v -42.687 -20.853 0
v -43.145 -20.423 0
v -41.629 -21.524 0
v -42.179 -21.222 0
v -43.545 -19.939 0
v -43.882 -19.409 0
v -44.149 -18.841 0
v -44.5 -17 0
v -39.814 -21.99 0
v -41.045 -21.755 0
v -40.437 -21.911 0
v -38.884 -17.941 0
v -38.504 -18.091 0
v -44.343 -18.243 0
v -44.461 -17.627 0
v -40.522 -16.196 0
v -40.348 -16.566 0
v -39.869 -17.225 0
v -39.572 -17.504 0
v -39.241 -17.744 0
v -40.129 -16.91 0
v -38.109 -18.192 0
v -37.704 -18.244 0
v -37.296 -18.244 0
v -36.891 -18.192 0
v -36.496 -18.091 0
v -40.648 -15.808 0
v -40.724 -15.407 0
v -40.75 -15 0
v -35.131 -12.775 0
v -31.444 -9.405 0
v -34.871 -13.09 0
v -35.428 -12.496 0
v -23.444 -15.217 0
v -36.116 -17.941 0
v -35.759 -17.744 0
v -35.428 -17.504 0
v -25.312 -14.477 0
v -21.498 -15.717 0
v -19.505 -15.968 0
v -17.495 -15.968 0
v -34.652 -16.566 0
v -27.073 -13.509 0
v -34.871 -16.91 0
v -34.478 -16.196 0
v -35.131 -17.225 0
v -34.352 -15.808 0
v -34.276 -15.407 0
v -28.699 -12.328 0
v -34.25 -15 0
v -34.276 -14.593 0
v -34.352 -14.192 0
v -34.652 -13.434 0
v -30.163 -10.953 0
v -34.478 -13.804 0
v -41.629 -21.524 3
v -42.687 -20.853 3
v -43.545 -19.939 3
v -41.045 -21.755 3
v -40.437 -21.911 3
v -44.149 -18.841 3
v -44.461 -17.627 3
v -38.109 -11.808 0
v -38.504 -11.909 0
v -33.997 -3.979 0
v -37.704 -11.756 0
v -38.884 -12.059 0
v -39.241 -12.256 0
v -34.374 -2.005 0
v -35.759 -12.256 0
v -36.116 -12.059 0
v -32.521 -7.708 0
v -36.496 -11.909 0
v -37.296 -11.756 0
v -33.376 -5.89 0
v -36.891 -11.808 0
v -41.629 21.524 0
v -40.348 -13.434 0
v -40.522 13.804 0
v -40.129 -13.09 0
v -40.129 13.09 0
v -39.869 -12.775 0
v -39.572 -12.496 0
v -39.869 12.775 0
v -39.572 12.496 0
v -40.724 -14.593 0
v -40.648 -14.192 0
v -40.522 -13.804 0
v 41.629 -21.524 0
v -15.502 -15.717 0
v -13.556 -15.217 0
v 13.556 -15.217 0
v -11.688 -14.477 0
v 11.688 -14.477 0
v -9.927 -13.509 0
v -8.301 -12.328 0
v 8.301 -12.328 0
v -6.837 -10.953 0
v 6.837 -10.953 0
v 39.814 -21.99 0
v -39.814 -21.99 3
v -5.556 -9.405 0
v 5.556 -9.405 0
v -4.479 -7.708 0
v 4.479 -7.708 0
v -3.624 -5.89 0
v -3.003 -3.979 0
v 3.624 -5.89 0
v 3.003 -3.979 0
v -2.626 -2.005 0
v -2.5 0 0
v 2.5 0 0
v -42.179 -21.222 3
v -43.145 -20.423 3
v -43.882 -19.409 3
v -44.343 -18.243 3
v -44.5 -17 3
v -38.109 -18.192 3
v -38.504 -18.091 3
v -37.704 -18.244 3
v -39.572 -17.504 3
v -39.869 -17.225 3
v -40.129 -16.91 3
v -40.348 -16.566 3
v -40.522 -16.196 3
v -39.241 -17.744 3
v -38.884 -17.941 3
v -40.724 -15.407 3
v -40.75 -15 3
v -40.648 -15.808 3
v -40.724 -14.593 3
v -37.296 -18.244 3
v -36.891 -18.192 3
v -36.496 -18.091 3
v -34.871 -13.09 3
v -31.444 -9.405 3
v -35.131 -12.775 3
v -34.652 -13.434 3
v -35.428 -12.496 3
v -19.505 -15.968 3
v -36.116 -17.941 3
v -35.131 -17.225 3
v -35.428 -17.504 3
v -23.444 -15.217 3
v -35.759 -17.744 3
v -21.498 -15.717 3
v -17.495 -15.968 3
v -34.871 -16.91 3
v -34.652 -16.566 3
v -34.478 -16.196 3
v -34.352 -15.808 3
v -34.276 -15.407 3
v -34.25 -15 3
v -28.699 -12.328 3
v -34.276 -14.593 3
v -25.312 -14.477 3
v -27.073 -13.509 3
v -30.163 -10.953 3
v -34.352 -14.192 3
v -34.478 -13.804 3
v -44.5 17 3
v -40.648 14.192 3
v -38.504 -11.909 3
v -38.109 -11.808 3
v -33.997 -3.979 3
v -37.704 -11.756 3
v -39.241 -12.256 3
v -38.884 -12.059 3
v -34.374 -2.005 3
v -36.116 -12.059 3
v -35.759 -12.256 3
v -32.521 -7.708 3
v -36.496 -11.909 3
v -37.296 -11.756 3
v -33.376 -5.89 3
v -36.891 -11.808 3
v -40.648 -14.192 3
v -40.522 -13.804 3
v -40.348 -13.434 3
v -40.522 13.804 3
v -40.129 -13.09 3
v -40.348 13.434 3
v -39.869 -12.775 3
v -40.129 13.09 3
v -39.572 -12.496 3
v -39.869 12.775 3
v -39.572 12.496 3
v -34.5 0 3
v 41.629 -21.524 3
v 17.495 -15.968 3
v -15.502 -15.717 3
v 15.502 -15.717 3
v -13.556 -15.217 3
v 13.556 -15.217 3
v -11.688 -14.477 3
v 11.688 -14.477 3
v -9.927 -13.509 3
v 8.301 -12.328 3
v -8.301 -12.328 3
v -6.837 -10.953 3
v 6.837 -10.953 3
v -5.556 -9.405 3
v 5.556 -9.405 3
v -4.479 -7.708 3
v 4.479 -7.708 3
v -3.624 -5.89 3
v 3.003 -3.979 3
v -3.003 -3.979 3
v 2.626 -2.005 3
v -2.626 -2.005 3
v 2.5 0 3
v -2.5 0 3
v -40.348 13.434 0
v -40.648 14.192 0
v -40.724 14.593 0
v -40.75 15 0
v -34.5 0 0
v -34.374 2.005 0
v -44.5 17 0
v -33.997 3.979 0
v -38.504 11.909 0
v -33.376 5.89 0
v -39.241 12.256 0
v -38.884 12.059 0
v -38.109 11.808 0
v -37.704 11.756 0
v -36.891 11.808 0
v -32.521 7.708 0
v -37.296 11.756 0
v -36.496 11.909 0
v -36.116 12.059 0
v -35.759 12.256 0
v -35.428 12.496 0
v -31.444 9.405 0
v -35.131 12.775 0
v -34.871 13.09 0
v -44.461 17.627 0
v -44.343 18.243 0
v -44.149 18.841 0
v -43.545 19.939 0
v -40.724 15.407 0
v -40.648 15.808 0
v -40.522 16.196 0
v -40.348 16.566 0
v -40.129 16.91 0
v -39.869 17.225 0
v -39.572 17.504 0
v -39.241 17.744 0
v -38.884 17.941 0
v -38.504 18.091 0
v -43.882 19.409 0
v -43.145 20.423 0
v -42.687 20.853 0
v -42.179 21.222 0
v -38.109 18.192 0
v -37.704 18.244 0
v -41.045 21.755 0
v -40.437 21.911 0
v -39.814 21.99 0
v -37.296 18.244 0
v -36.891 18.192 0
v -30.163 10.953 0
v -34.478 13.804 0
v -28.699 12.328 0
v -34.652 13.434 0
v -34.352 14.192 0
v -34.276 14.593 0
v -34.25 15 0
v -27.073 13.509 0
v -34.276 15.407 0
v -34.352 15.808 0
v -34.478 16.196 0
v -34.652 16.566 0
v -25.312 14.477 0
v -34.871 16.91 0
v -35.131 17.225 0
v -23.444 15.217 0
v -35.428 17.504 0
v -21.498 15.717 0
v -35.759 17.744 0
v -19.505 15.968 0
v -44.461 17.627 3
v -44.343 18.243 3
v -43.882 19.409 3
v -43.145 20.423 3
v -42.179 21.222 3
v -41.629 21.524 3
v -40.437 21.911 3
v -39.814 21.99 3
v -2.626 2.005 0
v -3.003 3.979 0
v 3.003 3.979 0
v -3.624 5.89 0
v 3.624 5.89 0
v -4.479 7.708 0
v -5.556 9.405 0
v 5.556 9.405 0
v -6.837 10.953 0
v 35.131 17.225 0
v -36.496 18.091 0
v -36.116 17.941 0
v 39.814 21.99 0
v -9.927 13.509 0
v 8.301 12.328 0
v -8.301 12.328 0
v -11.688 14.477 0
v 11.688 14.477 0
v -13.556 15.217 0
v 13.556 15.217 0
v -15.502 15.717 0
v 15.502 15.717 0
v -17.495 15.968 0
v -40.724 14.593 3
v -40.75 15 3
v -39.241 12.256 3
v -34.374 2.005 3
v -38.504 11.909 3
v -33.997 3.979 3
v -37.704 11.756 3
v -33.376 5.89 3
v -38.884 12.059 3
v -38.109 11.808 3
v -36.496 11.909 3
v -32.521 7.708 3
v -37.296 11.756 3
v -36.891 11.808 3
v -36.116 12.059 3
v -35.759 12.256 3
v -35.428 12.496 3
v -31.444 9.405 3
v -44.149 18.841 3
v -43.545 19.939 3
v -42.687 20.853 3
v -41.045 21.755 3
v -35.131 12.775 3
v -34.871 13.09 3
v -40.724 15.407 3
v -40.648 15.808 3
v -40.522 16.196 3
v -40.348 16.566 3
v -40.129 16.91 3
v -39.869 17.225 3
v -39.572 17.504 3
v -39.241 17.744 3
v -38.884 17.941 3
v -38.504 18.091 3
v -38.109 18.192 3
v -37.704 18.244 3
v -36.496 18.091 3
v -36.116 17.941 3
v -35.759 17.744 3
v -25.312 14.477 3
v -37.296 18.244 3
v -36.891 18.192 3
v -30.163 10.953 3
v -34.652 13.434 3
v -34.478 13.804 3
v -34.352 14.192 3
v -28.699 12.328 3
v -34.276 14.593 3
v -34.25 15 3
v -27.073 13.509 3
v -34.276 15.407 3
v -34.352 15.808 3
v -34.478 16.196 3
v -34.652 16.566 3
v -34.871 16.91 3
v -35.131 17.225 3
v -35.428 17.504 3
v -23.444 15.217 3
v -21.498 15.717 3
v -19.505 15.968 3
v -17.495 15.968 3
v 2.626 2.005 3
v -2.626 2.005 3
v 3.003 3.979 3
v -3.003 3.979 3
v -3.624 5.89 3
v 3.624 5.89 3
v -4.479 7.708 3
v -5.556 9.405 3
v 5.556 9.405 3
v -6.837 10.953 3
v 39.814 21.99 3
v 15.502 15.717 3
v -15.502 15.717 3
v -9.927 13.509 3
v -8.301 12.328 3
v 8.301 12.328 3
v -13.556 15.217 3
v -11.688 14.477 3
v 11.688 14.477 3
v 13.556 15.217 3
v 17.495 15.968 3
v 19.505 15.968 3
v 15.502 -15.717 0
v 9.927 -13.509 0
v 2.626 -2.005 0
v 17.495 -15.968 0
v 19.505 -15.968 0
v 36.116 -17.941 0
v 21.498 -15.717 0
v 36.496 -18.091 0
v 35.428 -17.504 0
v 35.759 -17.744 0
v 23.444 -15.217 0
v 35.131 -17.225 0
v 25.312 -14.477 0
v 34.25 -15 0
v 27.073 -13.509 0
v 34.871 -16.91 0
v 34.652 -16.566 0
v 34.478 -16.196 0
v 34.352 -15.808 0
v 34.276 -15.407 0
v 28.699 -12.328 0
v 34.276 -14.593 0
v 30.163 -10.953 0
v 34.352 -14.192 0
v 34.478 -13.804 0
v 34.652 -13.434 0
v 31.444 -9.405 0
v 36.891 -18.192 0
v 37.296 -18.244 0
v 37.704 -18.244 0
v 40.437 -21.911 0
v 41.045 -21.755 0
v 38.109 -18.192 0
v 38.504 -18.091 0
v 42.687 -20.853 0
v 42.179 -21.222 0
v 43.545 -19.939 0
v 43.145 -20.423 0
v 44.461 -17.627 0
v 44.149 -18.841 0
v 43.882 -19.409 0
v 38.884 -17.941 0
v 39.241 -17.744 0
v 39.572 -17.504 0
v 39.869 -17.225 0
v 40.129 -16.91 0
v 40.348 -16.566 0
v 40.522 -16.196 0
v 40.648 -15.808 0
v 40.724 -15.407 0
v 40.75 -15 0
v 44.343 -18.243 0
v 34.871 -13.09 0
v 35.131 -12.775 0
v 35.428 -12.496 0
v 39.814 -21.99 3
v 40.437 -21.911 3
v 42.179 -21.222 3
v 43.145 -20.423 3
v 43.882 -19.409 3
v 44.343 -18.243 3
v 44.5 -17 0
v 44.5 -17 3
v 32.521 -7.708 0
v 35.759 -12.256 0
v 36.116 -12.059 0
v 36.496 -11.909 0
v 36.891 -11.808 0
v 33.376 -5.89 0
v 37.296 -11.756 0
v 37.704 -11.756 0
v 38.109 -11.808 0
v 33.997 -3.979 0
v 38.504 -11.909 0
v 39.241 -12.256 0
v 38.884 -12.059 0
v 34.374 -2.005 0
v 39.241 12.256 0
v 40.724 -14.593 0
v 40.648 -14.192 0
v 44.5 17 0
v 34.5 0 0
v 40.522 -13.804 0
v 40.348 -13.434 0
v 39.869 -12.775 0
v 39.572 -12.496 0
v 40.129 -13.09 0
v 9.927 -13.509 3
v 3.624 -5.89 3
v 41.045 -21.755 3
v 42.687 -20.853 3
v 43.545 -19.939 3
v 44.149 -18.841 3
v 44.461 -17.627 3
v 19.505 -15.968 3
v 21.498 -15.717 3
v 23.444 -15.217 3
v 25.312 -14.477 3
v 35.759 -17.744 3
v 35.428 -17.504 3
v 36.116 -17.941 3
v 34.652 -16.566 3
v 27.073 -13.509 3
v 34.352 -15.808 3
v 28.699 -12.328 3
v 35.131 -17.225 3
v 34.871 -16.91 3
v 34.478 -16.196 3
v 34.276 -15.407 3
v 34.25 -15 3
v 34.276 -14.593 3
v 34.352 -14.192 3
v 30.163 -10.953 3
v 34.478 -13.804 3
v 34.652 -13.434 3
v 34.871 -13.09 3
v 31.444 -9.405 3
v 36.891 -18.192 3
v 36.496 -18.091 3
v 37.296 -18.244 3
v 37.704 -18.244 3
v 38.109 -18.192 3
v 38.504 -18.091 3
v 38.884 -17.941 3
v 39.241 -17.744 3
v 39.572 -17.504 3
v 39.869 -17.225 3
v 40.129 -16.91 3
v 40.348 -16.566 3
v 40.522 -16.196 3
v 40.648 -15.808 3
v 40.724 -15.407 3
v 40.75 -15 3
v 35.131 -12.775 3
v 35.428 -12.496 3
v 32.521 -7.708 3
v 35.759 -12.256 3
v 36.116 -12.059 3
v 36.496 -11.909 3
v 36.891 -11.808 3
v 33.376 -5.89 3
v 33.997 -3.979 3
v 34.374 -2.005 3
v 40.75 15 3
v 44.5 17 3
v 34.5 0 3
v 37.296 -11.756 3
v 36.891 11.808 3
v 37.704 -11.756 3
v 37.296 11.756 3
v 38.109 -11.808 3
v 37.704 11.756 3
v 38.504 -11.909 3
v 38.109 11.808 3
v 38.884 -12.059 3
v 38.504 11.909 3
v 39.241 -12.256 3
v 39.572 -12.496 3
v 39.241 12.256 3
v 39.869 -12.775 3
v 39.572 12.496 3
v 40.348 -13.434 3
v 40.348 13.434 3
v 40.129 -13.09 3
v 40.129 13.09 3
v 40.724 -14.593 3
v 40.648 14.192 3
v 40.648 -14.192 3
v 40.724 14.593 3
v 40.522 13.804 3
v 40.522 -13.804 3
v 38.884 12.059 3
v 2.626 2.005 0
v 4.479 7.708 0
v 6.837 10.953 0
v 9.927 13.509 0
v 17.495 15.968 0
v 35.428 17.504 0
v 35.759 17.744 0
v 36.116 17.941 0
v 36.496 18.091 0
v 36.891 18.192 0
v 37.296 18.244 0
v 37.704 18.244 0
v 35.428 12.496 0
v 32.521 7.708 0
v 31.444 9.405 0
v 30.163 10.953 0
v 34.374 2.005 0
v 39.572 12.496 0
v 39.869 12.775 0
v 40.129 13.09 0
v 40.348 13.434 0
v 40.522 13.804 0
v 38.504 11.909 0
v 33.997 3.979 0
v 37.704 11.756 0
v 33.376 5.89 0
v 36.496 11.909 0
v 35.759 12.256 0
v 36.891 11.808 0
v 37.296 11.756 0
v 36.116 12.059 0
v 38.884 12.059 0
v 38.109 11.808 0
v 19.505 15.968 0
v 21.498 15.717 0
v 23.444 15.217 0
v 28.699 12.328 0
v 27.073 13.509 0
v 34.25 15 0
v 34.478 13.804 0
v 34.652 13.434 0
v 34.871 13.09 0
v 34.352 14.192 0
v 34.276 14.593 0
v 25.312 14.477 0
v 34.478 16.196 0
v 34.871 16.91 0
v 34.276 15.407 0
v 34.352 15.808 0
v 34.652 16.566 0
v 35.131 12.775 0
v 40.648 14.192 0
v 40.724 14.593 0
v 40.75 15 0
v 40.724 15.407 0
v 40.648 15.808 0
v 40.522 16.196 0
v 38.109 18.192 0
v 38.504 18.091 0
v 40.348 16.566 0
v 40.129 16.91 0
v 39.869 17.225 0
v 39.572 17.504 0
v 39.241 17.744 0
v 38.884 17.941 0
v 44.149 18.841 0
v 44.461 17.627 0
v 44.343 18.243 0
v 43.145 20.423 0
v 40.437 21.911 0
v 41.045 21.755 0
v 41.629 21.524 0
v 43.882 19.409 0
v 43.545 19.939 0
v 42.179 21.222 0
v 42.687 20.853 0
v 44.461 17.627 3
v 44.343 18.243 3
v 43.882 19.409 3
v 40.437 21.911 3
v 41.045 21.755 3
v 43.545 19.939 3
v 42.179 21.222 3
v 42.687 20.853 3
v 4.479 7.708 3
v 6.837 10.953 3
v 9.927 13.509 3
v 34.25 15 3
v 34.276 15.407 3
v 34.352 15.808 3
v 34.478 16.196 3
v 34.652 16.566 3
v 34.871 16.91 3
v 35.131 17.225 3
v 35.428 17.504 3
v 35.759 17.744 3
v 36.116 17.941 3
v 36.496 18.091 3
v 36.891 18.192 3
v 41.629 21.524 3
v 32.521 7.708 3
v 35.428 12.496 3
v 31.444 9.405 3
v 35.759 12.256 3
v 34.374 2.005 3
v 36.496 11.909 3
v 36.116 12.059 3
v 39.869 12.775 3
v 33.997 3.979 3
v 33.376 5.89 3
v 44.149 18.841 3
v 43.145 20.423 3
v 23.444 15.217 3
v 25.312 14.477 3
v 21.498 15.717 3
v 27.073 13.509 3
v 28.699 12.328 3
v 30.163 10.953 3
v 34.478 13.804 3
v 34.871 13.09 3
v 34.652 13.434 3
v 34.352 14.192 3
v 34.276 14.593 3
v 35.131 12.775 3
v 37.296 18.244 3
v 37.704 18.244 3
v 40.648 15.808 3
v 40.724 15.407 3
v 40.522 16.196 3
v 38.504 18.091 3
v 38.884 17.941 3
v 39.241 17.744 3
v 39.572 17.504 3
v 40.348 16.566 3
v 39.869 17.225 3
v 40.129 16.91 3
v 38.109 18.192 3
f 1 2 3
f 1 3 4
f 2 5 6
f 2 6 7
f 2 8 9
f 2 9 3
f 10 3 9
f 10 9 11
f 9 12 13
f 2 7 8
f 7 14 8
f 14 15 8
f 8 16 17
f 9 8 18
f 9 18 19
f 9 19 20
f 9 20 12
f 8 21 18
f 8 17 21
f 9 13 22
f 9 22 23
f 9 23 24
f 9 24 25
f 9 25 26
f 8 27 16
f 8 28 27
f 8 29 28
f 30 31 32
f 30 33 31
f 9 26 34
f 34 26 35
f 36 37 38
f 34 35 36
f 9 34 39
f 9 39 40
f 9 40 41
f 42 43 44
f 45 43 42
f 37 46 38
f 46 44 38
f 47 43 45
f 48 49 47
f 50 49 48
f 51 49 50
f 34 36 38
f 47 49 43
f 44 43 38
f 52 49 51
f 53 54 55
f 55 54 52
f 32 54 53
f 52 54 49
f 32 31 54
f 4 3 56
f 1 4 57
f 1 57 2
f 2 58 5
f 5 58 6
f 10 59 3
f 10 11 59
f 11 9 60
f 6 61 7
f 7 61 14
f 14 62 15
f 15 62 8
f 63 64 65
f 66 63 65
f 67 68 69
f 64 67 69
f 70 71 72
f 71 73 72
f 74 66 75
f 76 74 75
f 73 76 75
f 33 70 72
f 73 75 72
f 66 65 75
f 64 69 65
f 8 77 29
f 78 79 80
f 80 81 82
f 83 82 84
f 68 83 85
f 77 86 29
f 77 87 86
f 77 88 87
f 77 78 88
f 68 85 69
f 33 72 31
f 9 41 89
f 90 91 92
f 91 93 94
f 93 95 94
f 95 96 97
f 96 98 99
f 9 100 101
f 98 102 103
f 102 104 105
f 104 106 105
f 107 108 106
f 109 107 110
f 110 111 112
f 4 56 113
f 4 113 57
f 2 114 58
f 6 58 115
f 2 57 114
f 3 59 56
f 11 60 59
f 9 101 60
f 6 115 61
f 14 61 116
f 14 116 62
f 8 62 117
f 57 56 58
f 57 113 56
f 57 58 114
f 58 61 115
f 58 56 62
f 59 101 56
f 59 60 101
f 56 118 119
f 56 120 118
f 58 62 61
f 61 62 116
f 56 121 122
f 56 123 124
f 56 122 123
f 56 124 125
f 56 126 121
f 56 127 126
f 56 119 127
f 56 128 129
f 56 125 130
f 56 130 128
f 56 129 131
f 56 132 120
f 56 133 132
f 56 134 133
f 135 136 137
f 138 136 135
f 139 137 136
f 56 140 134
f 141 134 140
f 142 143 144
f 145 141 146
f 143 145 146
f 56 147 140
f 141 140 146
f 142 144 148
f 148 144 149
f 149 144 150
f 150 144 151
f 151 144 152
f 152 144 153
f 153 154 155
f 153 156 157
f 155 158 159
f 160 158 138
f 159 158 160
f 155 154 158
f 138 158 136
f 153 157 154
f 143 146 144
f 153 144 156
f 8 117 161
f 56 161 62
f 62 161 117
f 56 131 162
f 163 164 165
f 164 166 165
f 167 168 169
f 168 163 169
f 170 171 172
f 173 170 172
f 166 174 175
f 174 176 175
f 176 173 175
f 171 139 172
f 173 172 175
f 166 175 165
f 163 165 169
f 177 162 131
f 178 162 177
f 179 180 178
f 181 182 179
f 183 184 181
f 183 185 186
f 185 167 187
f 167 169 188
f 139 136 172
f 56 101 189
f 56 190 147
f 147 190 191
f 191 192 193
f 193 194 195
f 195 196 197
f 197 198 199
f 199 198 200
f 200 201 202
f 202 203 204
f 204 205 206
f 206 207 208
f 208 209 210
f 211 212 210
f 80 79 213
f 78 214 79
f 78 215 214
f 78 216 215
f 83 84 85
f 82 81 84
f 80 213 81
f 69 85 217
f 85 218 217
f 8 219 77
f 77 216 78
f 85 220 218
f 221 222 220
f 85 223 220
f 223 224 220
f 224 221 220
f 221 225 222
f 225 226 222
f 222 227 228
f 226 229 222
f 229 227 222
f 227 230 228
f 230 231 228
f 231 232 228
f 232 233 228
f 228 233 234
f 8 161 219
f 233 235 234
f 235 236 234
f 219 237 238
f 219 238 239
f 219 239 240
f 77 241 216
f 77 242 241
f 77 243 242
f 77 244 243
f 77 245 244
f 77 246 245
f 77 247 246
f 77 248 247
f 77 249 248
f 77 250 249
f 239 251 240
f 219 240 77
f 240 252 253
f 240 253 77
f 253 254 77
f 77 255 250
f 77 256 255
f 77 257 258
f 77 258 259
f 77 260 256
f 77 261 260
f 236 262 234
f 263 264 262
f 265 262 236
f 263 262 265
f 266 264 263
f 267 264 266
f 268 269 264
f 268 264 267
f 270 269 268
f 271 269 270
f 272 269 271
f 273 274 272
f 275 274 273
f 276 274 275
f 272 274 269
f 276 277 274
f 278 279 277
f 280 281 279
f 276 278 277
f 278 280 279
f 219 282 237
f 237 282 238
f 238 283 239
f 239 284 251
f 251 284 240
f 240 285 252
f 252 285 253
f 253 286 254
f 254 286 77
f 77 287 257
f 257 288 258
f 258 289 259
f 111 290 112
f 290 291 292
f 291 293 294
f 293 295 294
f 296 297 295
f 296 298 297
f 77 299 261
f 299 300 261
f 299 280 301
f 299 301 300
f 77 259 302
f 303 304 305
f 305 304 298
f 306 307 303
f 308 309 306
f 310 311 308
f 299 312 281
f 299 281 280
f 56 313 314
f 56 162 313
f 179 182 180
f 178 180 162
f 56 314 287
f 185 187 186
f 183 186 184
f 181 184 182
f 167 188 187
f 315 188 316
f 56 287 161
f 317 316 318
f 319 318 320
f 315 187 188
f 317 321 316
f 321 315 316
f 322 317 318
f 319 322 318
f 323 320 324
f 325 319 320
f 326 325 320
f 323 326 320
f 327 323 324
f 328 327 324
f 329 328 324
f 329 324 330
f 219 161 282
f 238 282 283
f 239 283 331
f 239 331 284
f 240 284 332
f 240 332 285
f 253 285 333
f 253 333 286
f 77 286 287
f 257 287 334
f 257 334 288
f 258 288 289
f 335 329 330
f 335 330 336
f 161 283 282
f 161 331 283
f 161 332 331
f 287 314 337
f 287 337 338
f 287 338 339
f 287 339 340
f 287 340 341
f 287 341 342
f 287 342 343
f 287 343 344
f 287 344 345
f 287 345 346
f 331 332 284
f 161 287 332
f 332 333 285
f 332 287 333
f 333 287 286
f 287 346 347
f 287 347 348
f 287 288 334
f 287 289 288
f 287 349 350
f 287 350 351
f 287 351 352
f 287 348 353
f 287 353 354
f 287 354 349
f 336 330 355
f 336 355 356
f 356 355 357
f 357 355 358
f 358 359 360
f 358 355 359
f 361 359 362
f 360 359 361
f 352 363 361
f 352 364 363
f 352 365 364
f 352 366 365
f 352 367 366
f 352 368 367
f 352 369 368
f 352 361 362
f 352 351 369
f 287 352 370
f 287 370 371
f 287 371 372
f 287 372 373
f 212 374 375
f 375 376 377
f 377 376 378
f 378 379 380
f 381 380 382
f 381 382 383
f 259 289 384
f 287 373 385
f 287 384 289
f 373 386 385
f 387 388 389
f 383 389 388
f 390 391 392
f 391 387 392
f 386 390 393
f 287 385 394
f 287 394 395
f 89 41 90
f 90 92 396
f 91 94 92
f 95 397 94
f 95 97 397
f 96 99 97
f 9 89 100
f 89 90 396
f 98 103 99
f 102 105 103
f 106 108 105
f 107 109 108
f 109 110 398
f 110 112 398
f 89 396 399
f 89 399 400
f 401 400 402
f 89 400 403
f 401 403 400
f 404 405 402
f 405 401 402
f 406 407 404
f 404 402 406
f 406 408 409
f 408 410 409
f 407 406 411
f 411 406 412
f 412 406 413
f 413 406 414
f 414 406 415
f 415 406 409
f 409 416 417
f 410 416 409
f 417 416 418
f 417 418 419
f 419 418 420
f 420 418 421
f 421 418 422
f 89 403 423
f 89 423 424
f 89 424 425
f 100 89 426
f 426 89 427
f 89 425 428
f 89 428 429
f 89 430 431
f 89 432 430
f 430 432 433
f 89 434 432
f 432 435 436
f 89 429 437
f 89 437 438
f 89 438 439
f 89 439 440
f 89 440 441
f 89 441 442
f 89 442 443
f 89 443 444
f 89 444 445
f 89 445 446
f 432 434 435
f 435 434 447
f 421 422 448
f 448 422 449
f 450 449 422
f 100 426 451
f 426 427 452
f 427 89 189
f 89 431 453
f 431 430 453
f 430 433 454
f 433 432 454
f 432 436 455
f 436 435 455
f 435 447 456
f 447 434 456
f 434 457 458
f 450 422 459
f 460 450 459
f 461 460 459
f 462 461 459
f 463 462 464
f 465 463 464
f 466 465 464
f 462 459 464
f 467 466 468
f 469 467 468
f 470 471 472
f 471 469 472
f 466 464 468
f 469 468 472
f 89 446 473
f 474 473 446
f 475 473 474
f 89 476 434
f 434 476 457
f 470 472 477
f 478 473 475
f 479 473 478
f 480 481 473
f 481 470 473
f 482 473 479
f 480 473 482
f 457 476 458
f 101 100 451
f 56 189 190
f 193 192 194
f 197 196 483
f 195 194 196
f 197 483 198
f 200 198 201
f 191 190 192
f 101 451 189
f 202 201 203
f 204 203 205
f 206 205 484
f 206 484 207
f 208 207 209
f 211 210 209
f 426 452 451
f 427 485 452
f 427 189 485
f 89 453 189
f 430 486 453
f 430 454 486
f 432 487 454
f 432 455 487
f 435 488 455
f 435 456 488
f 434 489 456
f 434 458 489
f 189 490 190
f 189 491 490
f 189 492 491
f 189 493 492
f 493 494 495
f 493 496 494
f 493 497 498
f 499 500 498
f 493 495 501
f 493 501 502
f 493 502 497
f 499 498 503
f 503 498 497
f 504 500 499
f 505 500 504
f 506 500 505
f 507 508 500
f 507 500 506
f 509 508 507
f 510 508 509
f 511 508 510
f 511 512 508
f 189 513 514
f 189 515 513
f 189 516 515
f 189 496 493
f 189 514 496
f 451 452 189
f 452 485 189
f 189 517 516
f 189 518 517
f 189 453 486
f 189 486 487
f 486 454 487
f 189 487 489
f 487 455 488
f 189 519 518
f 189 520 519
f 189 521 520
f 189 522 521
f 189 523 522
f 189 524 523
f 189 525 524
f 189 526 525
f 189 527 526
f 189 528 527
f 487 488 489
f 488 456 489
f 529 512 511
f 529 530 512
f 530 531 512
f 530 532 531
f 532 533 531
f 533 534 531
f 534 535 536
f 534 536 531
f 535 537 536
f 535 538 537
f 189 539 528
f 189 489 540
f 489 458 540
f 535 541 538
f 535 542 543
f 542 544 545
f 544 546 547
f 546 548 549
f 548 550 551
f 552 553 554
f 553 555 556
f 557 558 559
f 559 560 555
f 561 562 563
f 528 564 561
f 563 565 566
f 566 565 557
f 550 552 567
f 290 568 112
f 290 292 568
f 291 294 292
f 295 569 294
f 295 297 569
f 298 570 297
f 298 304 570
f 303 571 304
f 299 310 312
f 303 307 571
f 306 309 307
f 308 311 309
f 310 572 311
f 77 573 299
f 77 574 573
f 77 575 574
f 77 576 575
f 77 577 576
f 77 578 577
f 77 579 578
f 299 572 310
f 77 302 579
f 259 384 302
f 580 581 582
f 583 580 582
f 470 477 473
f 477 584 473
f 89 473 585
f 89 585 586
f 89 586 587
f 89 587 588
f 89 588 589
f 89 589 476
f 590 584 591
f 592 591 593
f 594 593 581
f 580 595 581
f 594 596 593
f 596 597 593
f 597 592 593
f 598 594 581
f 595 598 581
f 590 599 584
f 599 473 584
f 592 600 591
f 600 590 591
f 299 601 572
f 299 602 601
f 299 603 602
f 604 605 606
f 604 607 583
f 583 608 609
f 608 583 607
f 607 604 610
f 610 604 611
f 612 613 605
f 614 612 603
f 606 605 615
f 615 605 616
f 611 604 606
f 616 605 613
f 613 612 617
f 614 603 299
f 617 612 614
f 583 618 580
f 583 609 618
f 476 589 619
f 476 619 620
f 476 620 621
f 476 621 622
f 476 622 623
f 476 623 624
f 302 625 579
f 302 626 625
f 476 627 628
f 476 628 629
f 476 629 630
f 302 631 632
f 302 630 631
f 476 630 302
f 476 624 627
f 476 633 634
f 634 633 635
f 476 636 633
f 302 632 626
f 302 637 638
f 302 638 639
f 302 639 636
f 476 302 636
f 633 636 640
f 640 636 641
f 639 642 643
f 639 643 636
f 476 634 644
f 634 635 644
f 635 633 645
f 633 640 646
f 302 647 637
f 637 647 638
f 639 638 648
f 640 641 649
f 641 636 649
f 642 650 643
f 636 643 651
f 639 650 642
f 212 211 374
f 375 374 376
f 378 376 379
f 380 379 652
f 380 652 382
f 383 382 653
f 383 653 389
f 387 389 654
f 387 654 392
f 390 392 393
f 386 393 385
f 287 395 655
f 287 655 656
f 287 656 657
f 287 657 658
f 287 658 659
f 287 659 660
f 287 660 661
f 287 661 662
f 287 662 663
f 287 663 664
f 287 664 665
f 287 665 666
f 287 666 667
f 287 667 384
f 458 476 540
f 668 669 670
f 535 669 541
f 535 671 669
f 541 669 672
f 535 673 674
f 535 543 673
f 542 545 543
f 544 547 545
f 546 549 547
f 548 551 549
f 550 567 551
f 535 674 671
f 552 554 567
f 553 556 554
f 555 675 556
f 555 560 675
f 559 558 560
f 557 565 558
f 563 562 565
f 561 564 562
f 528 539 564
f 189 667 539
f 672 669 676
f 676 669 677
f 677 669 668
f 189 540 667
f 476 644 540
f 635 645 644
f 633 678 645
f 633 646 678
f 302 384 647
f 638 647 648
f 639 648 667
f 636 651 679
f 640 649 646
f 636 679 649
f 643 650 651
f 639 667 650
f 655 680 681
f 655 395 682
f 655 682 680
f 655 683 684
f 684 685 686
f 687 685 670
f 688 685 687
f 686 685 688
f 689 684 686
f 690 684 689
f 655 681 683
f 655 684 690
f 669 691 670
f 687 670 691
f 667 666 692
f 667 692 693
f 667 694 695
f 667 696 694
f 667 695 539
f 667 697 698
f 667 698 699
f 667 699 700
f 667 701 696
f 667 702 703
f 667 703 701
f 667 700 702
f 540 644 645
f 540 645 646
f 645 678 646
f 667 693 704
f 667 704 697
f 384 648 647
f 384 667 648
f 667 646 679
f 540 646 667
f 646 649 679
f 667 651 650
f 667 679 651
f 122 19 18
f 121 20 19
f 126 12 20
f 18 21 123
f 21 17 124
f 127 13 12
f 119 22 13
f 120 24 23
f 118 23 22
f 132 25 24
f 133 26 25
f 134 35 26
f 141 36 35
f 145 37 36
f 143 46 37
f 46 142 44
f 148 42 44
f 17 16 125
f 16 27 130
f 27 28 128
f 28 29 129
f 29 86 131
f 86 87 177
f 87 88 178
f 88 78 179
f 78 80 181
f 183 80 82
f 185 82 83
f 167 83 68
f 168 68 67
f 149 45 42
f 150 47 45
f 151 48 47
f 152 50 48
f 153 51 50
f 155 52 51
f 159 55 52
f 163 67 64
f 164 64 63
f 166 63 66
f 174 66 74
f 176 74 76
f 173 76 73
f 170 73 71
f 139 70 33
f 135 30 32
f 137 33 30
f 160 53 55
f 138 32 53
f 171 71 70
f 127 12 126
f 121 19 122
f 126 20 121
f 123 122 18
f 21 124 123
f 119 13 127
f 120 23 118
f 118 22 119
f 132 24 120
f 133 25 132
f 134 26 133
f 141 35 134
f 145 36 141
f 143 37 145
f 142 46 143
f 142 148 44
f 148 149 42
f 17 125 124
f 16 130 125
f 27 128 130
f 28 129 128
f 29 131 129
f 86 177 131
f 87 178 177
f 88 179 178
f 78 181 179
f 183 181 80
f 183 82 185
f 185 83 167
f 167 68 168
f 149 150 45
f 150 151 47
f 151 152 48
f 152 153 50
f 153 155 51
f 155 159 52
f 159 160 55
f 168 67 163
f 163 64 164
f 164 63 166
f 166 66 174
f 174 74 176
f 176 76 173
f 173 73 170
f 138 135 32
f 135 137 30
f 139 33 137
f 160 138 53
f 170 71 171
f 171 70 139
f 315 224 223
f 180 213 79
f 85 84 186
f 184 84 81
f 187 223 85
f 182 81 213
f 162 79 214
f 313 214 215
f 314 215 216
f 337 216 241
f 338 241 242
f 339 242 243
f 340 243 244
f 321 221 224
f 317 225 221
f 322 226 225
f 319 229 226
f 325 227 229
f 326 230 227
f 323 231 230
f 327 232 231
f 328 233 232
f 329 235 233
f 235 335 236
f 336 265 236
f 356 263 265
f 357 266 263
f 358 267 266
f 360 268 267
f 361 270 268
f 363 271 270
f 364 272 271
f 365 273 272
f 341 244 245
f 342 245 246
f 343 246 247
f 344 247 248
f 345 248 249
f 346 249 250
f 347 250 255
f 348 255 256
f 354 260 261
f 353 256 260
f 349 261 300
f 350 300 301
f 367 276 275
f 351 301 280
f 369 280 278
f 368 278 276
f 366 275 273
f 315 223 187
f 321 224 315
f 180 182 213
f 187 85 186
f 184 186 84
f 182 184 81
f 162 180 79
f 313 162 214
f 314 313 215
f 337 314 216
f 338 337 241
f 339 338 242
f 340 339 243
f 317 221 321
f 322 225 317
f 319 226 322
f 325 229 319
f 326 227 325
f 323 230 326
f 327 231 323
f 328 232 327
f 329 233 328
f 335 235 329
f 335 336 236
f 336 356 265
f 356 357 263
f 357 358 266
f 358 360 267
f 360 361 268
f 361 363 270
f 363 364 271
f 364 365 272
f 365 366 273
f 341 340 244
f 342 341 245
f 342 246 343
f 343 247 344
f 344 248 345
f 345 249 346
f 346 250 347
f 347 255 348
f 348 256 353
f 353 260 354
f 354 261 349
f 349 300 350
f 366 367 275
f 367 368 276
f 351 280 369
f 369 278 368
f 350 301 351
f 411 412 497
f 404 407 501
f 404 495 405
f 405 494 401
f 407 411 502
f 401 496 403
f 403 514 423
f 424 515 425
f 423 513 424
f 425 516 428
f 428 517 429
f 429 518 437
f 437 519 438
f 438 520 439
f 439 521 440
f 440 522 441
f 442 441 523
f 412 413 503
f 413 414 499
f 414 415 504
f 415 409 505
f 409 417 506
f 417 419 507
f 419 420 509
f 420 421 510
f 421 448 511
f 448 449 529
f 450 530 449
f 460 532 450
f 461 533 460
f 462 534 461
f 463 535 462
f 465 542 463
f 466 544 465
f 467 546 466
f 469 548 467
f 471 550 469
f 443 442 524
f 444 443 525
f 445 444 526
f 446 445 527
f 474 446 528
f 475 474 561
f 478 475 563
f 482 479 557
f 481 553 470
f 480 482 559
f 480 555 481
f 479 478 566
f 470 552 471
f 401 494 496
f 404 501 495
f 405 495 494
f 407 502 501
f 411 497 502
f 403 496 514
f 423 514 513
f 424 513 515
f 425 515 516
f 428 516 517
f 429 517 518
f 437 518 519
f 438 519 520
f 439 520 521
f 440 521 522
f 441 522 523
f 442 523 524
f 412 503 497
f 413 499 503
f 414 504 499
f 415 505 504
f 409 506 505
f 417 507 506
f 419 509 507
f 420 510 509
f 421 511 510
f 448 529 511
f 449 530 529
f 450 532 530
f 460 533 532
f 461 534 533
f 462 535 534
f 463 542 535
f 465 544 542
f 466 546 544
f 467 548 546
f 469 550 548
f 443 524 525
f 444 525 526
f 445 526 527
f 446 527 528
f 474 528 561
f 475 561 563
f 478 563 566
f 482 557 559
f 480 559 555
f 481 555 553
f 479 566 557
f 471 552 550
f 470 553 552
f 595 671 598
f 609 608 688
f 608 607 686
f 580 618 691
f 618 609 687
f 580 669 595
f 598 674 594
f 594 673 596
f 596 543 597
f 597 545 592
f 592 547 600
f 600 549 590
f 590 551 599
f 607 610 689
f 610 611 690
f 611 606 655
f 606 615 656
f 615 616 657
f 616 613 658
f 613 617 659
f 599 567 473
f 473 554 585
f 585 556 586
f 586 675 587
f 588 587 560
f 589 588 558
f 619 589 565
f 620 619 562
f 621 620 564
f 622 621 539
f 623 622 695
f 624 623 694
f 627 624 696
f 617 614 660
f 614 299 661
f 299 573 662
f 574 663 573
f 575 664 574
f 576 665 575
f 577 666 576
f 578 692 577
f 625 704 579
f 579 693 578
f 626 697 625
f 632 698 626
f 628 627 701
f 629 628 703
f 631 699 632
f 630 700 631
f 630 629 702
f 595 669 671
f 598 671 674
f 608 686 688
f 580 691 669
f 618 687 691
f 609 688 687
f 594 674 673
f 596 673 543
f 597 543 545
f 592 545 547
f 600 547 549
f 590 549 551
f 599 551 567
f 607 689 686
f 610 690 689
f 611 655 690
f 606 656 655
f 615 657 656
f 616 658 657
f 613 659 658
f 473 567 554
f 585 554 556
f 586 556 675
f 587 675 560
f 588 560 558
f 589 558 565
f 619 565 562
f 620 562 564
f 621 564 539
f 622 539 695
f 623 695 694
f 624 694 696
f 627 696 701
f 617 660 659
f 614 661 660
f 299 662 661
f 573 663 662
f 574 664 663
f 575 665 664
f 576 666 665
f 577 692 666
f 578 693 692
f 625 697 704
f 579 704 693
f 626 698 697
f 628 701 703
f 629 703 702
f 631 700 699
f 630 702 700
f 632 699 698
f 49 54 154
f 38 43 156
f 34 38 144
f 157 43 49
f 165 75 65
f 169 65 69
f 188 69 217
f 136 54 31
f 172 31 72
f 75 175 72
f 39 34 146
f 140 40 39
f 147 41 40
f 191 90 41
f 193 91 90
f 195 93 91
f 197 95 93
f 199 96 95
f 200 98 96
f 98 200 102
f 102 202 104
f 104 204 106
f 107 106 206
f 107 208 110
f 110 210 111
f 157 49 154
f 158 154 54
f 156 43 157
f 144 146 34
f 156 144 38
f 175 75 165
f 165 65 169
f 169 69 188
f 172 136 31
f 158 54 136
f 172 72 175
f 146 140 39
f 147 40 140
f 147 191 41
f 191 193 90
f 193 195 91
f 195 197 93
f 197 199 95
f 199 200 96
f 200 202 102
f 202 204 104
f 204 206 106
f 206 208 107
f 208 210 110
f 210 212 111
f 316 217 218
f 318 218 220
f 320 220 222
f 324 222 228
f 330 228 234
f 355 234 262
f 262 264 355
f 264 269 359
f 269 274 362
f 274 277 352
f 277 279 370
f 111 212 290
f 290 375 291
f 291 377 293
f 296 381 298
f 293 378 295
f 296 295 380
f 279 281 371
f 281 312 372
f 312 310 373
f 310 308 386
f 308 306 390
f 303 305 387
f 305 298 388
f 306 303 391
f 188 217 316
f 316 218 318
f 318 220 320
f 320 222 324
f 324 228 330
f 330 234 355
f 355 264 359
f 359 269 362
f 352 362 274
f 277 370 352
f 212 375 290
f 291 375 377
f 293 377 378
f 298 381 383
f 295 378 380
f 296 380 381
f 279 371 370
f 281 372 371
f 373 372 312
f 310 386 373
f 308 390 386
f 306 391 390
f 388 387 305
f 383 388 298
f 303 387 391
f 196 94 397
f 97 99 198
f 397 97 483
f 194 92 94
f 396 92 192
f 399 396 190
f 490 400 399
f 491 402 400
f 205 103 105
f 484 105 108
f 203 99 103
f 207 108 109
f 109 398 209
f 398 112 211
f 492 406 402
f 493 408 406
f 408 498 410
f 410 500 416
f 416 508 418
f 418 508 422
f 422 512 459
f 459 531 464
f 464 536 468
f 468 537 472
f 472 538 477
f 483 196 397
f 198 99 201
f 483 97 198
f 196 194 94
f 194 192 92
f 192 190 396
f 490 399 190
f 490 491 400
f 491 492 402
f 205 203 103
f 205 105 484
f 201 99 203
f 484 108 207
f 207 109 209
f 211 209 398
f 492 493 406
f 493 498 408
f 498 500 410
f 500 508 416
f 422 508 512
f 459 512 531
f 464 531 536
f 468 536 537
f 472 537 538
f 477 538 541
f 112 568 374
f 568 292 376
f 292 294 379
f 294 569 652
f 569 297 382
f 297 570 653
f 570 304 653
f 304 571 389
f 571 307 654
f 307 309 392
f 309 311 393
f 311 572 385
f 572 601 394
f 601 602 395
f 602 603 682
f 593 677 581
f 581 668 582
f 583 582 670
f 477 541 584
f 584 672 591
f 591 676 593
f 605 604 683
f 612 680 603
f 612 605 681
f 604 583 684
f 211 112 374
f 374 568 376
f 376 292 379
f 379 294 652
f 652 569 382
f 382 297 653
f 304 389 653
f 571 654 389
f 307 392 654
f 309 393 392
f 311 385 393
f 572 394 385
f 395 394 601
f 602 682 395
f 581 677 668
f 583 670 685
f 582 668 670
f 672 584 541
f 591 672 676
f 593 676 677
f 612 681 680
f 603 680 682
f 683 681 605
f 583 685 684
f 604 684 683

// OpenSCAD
$fn = 50;

difference() {
	union() {
		hull() {
			translate(v = [-39.5, 17.0, 0]) {
				cylinder(h = 3, r = 5);
			}
			translate(v = [39.5, 17.0, 0]) {
				cylinder(h = 3, r = 5);
			}
			translate(v = [-39.5, -17.0, 0]) {
				cylinder(h = 3, r = 5);
			}
			translate(v = [39.5, -17.0, 0]) {
				cylinder(h = 3, r = 5);
			}
		}
	}
	union() {
		translate(v = [-37.5, -15.0, -100.0]) {
			cylinder(h = 200, r = 3.25);
		}
		translate(v = [-37.5, 15.0, -100.0]) {
			cylinder(h = 200, r = 3.25);
		}
		translate(v = [37.5, -15.0, -100.0]) {
			cylinder(h = 200, r = 3.25);
		}
		translate(v = [37.5, 15.0, -100.0]) {
			cylinder(h = 200, r = 3.25);
		}
		translate(v = [-37.5, -15.0, -100.0]) {
			cylinder(h = 200, r = 1.8);
		}
		translate(v = [-37.5, 15.0, -100.0]) {
			cylinder(h = 200, r = 1.8);
		}
		translate(v = [37.5, -15.0, -100.0]) {
			cylinder(h = 200, r = 1.8);
		}
		translate(v = [37.5, 15.0, -100.0]) {
			cylinder(h = 200, r = 1.8);
		}
		translate(v = [-18.5, 0, 0.0]) {
			cylinder(h = 3, r = 16.0);
		}
		translate(v = [18.5, 0, 0.0]) {
			cylinder(h = 3, r = 16.0);
		}
	}
}
